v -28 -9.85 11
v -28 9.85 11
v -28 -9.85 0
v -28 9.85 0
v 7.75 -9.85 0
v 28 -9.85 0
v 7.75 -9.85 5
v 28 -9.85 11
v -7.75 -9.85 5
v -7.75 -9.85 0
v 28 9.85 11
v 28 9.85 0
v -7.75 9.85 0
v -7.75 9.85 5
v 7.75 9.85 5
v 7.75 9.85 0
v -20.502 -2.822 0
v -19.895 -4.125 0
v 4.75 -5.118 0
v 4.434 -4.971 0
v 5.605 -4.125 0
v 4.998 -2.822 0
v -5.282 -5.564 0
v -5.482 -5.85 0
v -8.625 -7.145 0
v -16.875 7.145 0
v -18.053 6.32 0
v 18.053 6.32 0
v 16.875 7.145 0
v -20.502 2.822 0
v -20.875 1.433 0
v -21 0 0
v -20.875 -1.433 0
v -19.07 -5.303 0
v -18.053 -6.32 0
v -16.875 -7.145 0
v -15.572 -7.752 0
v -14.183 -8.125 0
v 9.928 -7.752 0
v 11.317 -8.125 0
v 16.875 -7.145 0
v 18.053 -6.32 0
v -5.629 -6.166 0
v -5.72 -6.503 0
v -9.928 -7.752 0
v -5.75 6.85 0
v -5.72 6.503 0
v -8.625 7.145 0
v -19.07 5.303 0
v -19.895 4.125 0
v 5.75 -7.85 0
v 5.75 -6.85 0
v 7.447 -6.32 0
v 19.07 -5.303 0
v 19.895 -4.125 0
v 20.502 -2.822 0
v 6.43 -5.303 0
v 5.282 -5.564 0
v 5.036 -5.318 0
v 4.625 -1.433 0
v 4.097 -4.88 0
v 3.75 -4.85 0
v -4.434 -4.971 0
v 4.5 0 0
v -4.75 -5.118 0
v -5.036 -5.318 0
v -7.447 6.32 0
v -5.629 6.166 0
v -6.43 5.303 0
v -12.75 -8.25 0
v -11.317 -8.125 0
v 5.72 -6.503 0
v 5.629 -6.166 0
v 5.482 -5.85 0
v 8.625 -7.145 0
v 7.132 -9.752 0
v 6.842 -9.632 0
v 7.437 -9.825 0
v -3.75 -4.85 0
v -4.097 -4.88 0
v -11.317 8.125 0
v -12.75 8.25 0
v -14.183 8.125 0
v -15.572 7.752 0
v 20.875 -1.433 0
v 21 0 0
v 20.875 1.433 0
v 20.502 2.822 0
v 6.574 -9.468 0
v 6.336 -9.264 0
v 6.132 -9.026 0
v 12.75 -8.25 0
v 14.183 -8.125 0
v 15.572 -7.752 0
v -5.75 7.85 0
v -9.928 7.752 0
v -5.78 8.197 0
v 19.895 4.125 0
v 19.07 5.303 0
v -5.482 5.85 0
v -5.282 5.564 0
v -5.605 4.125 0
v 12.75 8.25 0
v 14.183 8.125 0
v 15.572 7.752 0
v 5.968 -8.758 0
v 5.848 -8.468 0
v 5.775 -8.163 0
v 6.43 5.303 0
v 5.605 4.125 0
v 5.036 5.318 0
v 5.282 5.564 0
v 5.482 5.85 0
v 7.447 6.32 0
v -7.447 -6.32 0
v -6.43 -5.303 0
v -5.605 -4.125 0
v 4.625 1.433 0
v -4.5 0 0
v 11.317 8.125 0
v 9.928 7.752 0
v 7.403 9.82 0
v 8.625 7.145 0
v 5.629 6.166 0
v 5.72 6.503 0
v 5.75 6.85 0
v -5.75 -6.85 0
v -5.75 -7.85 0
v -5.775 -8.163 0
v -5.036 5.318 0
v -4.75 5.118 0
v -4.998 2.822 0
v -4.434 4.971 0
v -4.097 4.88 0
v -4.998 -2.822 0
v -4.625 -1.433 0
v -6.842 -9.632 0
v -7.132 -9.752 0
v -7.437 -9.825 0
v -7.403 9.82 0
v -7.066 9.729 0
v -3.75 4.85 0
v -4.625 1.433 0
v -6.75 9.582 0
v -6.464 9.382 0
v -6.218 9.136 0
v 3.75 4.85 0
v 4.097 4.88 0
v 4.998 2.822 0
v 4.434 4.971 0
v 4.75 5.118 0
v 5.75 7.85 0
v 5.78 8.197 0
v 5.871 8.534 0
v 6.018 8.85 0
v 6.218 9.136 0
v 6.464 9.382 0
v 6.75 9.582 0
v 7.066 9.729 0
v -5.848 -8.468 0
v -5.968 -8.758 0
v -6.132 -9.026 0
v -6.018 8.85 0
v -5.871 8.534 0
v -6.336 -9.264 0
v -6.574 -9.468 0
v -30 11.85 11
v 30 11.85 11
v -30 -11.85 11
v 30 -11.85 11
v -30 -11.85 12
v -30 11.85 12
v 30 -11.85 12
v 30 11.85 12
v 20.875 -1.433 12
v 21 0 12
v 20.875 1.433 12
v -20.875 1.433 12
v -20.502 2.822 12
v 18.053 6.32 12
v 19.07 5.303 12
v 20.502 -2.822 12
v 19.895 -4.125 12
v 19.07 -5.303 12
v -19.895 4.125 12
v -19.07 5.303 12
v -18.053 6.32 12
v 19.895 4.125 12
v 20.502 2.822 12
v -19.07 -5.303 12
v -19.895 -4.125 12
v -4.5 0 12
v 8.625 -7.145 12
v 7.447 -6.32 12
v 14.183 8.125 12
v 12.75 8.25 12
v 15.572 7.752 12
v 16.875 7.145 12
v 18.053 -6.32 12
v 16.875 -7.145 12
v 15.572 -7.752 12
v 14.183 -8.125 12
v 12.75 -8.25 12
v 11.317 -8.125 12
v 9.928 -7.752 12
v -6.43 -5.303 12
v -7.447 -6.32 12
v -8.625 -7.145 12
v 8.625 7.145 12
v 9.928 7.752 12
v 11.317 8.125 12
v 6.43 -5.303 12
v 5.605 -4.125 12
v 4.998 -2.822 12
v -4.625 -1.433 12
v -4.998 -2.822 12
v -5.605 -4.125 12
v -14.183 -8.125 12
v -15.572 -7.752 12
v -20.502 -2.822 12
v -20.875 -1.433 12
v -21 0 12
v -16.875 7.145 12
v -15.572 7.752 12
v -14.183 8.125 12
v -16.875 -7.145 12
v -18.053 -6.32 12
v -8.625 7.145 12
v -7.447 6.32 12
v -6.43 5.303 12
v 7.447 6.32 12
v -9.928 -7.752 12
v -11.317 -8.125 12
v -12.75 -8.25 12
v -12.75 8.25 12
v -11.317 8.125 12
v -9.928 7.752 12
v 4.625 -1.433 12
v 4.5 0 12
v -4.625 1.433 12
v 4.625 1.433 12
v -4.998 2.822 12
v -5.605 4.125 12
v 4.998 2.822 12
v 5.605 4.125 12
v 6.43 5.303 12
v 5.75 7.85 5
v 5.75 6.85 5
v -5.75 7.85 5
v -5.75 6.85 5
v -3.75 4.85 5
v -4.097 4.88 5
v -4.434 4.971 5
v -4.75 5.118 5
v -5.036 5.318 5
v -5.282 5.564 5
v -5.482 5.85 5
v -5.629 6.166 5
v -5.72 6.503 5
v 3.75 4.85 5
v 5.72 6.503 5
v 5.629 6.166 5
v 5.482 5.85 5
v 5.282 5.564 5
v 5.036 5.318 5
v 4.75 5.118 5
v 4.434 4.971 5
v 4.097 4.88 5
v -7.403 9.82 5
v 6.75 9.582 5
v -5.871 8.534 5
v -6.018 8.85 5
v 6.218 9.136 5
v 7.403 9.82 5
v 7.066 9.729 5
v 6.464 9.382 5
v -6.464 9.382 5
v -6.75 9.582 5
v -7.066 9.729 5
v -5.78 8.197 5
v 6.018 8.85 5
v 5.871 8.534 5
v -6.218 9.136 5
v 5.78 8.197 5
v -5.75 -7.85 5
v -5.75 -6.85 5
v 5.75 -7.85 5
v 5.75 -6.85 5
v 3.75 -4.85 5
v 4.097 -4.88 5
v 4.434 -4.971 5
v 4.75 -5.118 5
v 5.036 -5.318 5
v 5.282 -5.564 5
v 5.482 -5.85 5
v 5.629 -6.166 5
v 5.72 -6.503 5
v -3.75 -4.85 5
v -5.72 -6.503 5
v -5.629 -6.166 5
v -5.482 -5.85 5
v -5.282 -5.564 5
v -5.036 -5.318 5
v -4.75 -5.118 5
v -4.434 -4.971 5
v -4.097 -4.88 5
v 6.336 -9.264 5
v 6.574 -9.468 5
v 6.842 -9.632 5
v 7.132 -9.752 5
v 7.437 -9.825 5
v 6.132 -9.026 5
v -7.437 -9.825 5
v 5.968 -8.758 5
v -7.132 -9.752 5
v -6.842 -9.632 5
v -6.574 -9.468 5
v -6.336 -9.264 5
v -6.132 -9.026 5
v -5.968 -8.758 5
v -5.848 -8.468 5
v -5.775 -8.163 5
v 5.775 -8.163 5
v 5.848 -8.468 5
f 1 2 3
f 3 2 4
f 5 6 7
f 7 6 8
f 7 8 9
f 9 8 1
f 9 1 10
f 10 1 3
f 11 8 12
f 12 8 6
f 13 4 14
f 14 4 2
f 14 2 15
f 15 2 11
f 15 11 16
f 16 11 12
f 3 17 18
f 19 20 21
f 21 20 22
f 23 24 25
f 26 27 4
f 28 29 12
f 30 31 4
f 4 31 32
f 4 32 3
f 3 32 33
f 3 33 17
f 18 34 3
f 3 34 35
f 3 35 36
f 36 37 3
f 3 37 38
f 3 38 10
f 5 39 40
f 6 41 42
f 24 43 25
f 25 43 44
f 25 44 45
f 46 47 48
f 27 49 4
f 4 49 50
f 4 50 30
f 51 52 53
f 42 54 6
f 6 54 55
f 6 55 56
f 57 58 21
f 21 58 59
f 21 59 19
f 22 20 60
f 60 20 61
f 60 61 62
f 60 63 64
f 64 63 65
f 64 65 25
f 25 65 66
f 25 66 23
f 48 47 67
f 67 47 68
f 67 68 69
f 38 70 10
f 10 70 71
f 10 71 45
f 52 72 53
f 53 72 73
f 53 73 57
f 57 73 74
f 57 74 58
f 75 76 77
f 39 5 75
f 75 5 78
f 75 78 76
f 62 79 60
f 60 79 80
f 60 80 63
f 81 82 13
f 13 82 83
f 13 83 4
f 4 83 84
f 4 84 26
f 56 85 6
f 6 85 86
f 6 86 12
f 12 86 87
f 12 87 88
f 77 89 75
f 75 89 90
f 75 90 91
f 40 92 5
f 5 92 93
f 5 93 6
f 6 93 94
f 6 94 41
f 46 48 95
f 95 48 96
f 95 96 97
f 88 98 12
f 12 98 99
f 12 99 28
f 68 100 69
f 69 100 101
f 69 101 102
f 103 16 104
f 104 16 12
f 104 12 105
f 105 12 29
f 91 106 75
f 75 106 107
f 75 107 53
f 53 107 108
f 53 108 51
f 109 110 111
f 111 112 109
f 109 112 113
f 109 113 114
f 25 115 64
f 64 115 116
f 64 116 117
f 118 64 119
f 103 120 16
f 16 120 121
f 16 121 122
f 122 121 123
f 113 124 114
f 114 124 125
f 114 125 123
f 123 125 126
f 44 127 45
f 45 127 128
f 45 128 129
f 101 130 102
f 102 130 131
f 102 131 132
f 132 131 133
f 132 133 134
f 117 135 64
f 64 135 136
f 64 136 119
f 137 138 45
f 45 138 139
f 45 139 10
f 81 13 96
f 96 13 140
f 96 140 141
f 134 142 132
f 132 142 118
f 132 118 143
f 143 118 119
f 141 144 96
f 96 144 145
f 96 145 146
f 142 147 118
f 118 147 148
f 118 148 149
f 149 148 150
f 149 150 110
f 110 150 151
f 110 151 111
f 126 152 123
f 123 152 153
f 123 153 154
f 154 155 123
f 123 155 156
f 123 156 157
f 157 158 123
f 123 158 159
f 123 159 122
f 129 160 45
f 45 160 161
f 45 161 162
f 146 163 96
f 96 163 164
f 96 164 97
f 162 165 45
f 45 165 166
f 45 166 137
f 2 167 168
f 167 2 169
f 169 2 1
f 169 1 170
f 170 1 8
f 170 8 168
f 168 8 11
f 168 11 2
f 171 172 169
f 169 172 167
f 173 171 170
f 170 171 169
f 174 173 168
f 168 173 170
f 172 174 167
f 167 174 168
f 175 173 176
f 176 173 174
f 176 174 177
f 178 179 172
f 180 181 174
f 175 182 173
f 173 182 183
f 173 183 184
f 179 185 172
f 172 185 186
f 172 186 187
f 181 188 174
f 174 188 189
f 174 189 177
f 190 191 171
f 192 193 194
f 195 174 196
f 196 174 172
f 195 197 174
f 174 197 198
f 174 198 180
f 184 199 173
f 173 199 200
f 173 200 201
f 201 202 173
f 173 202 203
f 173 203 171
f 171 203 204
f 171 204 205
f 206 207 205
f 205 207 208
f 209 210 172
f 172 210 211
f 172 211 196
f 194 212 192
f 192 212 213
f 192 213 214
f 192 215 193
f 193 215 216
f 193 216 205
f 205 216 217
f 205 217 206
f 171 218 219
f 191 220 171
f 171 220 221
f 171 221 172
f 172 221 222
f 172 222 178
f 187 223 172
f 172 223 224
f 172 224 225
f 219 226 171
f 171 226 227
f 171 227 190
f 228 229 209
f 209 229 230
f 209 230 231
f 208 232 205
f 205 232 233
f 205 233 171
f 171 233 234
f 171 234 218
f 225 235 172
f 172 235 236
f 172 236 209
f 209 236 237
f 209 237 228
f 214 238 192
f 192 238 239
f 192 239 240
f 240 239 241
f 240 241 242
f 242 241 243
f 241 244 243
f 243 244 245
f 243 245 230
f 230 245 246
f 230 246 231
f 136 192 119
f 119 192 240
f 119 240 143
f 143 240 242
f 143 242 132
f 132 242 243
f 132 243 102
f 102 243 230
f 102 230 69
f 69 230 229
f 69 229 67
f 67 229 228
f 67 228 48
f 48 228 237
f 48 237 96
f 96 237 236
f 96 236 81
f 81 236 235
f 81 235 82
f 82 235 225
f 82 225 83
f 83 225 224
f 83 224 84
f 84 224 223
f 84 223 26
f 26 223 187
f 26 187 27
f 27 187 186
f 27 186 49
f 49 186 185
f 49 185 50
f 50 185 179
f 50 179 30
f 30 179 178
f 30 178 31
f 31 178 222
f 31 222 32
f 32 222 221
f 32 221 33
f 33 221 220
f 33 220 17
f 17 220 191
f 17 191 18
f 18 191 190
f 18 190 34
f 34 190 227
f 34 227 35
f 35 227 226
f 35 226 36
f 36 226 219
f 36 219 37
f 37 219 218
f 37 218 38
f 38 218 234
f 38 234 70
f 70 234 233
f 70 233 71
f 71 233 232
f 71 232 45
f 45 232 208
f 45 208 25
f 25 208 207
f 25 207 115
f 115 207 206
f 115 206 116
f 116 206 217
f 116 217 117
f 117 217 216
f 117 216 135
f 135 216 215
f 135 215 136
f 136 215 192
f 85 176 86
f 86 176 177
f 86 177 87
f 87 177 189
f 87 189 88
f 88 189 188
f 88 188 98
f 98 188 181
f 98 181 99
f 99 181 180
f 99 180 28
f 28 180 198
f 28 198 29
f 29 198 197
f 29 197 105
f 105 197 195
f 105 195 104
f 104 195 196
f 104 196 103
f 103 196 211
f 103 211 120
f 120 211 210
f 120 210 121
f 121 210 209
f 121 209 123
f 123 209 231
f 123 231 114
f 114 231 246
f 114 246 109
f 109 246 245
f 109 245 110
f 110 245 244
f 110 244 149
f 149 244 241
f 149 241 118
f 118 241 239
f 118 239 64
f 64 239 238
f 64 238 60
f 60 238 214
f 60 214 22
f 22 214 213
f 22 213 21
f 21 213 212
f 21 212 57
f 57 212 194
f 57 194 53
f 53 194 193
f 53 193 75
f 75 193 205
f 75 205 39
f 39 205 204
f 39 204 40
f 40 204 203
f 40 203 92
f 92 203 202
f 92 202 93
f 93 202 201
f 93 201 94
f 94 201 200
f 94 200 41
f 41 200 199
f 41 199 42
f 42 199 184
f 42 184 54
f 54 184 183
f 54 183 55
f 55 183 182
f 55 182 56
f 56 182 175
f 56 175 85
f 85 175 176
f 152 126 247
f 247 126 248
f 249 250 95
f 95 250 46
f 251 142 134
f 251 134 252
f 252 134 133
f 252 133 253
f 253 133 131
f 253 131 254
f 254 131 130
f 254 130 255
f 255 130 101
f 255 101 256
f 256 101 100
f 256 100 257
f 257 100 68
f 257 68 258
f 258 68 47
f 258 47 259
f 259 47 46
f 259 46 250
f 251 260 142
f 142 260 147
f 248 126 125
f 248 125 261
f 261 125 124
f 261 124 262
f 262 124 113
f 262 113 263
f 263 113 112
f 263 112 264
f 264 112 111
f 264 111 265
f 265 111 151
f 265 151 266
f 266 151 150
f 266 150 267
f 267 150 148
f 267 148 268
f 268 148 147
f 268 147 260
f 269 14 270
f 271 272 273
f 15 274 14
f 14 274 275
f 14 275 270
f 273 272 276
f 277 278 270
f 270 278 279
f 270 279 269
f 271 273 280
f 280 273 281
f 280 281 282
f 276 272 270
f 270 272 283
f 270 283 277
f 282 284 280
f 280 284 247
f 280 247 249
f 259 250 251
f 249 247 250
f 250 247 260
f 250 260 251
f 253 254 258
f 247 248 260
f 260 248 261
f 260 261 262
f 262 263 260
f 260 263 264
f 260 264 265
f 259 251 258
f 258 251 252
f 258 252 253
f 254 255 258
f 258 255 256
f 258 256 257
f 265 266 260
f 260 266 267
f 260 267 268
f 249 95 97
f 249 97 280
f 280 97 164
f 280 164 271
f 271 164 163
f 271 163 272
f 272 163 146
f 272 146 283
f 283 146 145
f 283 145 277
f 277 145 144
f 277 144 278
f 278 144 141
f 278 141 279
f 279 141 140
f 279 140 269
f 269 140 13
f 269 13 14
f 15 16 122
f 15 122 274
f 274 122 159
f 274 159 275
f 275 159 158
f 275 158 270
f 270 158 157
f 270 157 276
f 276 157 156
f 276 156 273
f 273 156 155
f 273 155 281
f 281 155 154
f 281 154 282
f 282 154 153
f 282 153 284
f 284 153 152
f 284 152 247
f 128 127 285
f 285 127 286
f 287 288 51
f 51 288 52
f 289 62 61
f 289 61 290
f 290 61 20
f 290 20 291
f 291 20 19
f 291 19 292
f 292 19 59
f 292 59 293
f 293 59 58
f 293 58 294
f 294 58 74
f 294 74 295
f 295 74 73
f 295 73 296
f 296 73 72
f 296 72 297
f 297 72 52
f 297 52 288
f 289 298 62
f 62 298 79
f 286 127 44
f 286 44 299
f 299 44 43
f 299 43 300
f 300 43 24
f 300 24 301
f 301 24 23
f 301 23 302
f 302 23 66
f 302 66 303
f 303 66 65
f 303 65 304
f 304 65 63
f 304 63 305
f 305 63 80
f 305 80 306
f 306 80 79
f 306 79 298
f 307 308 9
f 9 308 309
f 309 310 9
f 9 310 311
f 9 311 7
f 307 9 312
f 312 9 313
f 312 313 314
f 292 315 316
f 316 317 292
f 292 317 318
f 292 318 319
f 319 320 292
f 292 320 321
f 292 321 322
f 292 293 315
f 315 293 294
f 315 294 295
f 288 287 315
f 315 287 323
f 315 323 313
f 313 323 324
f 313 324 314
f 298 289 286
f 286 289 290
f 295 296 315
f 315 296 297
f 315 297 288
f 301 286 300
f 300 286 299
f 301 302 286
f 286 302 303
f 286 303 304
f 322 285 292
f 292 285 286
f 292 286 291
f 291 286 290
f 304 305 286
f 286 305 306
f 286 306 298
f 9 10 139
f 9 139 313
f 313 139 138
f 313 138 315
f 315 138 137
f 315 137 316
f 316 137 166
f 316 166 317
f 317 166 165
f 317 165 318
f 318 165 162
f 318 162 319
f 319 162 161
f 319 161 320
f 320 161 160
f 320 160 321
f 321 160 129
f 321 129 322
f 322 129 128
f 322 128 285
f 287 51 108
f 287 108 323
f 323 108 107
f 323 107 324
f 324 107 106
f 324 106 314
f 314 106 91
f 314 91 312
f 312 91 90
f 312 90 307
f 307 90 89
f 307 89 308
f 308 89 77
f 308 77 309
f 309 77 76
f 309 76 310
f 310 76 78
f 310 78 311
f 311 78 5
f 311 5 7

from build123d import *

# Parameters (mm, degrees)
SKETCH1_W           = 56
SKETCH1_H           = 19.7
BOSS_EXTRUDE2_DEPTH = 11
SKETCH3_W           = 60
SKETCH3_H           = 23.7
BOSS_EXTRUDE3_DEPTH = 1
SKETCH4_R           = 8.25
CUT_EXTRUDE1_DEPTH  = 35.415439849
CUT_EXTRUDE2_DEPTH  = 5
FILLET1_R           = 2
CUT_EXTRUDE3_DEPTH  = 5
FILLET2_R           = 2


with BuildPart() as part:
    # Sketch1 → Boss-Extrude2 (new body)
    with BuildSketch(Plane.XY):
        Rectangle(SKETCH1_W, SKETCH1_H)
    extrude(amount=BOSS_EXTRUDE2_DEPTH)

    # Sketch3 → Boss-Extrude3 (add)
    with BuildSketch(Plane.XY.offset(11)):
        Rectangle(SKETCH3_W, SKETCH3_H)
    extrude(amount=BOSS_EXTRUDE3_DEPTH)

    # Sketch4 → Cut-Extrude1 (cut, through all)
    with BuildSketch(Plane.XY.offset(12)):
        with Locations((-12.75, 0)):
            Circle(SKETCH4_R)
        with Locations((12.75, 0)):
            Circle(SKETCH4_R)
    extrude(amount=-CUT_EXTRUDE1_DEPTH, mode=Mode.SUBTRACT)

    # Sketch5 → Cut-Extrude2 (cut)
    with BuildSketch(Plane(origin=(0, 0, 0), x_dir=(-1, 0, 0), z_dir=(0, 0, -1))):
        with BuildLine():
            Line((-5.75, 9.85), (5.75, 9.85))
            Line((5.75, 9.85), (5.75, 6.85))
            ThreePointArc((5.75, 6.85), (5.164213562, 5.435786438), (3.75, 4.85))
            Line((3.75, 4.85), (-3.75, 4.85))
            ThreePointArc((-3.75, 4.85), (-5.164213562, 5.435786438), (-5.75, 6.85))
            Line((-5.75, 6.85), (-5.75, 9.85))
        make_face()
    extrude(amount=-CUT_EXTRUDE2_DEPTH, mode=Mode.SUBTRACT)

    # Fillet1
    fillet1_edges = [part.edges().sort_by_distance(p)[0] for p in [
        (5.75, 9.85, 2.5),
        (-5.75, 9.85, 2.5),
    ]]
    fillet(fillet1_edges, radius=FILLET1_R)

    # Sketch6 → Cut-Extrude3 (cut)
    with BuildSketch(Plane(origin=(0, 0, 0), x_dir=(-1, 0, 0), z_dir=(0, 0, -1))):
        with BuildLine():
            Line((-3.75, -4.85), (3.75, -4.85))
            ThreePointArc((3.75, -4.85), (5.164213562, -5.435786438), (5.75, -6.85))
            Line((5.75, -6.85), (5.75, -9.85))
            Line((5.75, -9.85), (-5.75, -9.85))
            Line((-5.75, -9.85), (-5.75, -6.85))
            ThreePointArc((-5.75, -6.85), (-5.164213562, -5.435786438), (-3.75, -4.85))
        make_face()
    extrude(amount=-CUT_EXTRUDE3_DEPTH, mode=Mode.SUBTRACT)

    # Fillet2
    fillet2_edges = [part.edges().sort_by_distance(p)[0] for p in [
        (-5.75, -9.85, 2.5),
        (5.75, -9.85, 2.5),
    ]]
    fillet(fillet2_edges, radius=FILLET2_R)


solid = part.part
